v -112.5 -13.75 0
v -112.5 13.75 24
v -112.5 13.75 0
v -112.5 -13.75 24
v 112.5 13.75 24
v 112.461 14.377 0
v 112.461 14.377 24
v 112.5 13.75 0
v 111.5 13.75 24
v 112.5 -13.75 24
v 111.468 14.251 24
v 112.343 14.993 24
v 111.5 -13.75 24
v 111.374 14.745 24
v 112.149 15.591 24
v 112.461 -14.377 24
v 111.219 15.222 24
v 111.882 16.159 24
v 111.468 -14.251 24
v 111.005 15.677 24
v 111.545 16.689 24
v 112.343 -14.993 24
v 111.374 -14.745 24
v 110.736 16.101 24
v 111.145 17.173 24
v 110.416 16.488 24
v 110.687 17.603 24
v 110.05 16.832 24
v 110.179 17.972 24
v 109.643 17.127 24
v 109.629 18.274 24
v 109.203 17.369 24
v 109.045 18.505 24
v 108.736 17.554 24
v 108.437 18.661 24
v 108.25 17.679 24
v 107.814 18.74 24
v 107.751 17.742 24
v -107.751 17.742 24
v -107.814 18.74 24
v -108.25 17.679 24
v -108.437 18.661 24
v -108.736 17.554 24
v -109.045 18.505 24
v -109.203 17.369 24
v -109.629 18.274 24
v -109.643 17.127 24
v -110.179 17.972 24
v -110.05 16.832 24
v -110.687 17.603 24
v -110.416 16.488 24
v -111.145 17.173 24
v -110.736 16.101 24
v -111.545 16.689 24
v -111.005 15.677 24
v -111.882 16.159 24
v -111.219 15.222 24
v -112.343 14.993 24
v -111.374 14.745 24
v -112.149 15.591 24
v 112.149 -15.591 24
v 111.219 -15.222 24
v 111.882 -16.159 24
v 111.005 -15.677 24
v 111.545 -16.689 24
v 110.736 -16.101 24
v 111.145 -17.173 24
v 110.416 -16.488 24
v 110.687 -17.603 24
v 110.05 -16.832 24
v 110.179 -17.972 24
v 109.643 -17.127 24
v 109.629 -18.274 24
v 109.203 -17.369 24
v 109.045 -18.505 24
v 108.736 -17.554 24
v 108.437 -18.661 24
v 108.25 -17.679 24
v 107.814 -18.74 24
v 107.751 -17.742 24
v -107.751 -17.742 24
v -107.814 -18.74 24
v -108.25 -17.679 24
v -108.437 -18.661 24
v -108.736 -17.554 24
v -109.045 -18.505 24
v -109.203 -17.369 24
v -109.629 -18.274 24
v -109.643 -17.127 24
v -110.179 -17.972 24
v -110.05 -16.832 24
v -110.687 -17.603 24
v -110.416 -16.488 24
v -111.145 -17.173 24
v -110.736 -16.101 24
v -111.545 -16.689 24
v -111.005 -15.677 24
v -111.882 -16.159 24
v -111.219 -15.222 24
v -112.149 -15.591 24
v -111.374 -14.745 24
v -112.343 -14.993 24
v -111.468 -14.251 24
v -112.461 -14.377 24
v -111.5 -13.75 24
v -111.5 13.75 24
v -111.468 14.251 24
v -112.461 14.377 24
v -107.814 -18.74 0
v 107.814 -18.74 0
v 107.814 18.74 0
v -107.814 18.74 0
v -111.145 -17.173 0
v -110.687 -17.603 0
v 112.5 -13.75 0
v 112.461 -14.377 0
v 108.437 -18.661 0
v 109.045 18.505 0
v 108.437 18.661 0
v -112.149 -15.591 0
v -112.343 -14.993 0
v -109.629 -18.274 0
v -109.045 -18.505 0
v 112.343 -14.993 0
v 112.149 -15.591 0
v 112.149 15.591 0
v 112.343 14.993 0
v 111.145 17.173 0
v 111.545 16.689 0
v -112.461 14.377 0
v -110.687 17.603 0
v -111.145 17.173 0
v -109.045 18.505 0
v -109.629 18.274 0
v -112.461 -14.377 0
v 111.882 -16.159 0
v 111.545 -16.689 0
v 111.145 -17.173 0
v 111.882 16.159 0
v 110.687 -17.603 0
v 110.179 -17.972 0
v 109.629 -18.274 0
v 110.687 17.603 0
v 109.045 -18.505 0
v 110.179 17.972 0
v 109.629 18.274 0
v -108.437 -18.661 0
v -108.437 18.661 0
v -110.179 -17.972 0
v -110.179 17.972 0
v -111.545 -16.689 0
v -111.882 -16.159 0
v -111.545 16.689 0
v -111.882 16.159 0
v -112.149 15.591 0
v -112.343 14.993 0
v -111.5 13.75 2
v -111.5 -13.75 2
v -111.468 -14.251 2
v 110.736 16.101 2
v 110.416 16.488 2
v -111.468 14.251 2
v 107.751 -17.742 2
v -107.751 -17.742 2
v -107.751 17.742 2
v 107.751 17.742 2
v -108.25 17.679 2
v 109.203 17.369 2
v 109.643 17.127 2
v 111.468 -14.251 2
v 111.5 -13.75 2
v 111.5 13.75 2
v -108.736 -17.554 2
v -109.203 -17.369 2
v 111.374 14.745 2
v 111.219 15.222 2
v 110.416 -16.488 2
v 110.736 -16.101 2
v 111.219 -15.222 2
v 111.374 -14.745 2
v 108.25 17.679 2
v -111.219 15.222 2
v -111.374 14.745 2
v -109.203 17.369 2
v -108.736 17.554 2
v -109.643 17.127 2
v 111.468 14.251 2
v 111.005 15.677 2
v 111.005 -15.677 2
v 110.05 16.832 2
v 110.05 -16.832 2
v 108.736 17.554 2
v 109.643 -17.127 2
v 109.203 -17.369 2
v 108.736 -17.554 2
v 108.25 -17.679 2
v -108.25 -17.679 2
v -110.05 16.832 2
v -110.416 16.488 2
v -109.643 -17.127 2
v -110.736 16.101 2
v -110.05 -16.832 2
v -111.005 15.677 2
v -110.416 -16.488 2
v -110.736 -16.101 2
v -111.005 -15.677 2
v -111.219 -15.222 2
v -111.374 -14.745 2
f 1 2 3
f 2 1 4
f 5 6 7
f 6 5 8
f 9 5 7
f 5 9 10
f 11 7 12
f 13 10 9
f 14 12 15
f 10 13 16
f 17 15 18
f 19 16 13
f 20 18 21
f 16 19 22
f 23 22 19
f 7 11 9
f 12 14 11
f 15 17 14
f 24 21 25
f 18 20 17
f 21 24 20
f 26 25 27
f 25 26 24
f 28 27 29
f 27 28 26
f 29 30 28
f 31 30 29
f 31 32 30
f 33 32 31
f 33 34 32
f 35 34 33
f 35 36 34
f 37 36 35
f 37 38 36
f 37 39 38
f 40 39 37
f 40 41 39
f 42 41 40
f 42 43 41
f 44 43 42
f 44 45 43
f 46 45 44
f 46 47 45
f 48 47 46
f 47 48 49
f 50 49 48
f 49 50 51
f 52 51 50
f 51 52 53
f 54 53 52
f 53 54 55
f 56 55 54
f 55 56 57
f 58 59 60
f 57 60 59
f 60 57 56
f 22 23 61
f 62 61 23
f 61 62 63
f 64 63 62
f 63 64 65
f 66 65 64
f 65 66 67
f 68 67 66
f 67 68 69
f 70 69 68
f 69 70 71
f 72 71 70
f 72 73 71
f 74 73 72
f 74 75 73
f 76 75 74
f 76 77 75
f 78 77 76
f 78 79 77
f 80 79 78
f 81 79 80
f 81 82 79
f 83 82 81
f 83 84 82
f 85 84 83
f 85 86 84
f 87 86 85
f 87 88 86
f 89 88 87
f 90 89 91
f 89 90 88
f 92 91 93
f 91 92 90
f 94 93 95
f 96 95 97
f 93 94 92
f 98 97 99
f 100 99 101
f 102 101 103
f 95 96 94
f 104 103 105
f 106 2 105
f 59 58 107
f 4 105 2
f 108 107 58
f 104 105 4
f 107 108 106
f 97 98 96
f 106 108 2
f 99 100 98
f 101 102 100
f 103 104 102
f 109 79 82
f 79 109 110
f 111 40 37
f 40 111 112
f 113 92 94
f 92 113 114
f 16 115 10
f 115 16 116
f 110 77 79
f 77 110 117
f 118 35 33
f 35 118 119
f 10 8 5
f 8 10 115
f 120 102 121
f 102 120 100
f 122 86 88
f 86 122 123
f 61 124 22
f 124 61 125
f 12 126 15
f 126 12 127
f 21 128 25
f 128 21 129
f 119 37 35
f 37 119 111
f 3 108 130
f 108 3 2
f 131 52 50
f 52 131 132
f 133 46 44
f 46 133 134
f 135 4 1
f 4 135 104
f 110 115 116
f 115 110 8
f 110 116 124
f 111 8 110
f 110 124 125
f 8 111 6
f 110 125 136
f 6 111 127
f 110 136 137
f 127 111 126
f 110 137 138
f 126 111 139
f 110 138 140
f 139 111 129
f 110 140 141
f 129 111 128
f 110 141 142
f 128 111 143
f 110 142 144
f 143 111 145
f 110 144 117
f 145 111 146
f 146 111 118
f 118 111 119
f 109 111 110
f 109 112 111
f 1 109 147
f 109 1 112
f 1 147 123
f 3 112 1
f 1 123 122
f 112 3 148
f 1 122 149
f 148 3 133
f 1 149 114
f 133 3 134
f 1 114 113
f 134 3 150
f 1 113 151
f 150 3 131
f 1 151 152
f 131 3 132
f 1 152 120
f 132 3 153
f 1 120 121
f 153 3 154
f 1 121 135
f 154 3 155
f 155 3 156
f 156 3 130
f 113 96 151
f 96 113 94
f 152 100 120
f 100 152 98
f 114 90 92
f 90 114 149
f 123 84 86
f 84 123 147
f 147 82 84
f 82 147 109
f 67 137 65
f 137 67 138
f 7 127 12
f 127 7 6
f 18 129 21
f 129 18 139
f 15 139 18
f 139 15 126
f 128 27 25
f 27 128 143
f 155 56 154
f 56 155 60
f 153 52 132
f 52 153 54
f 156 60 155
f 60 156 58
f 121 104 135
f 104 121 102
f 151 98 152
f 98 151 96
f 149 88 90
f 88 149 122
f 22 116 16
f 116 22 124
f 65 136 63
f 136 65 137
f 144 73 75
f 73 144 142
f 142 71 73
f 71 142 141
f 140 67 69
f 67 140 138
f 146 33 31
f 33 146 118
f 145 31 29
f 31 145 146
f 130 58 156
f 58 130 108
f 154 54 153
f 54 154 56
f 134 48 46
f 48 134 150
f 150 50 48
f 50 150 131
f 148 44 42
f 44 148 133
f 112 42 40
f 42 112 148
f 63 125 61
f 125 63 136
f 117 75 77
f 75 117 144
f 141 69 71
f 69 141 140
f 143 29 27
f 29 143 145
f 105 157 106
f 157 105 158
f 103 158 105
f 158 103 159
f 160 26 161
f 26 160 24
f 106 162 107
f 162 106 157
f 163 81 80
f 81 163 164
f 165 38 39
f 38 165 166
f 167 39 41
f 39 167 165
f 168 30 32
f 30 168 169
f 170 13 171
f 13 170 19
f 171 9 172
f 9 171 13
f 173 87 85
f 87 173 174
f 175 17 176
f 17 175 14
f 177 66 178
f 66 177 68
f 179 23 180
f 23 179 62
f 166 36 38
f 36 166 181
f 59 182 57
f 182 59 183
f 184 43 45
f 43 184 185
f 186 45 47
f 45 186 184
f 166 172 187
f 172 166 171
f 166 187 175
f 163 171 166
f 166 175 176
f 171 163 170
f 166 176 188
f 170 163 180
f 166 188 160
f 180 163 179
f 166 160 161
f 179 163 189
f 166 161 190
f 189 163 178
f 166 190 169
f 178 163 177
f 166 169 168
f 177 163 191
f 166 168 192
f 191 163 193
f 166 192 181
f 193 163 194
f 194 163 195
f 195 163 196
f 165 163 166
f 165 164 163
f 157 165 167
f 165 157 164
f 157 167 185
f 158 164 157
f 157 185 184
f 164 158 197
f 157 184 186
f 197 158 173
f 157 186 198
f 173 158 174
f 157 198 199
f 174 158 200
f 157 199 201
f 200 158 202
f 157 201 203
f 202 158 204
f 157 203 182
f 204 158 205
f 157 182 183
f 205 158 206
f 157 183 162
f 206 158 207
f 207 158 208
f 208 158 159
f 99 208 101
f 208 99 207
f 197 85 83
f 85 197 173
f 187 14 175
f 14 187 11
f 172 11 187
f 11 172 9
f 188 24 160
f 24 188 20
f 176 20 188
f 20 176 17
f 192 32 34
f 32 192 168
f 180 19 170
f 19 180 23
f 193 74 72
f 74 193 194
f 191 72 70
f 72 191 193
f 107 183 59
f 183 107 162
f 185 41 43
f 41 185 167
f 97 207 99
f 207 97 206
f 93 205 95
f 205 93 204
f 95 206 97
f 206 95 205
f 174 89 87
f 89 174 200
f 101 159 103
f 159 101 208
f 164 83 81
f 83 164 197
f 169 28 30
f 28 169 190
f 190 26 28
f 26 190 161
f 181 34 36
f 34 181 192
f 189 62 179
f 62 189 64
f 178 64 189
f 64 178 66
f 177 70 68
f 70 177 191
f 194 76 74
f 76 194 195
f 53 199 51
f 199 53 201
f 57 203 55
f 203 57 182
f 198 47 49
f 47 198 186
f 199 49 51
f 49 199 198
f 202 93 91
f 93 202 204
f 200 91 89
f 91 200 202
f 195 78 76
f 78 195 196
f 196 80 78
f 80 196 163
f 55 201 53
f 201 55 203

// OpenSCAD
$fn = 50;


difference() {
	union() {
		hull() {
			translate(v = [-107.5000000000, 13.7500000000, 0]) {
				cylinder(h = 24, r = 5);
			}
			translate(v = [107.5000000000, 13.7500000000, 0]) {
				cylinder(h = 24, r = 5);
			}
			translate(v = [-107.5000000000, -13.7500000000, 0]) {
				cylinder(h = 24, r = 5);
			}
			translate(v = [107.5000000000, -13.7500000000, 0]) {
				cylinder(h = 24, r = 5);
			}
		}
	}
	union() {
		translate(v = [0, 0, 2]) {
			hull() {
				translate(v = [-107.5000000000, 13.7500000000, 0]) {
					cylinder(h = 22, r = 4);
				}
				translate(v = [107.5000000000, 13.7500000000, 0]) {
					cylinder(h = 22, r = 4);
				}
				translate(v = [-107.5000000000, -13.7500000000, 0]) {
					cylinder(h = 22, r = 4);
				}
				translate(v = [107.5000000000, -13.7500000000, 0]) {
					cylinder(h = 22, r = 4);
				}
			}
		}
	}
}
